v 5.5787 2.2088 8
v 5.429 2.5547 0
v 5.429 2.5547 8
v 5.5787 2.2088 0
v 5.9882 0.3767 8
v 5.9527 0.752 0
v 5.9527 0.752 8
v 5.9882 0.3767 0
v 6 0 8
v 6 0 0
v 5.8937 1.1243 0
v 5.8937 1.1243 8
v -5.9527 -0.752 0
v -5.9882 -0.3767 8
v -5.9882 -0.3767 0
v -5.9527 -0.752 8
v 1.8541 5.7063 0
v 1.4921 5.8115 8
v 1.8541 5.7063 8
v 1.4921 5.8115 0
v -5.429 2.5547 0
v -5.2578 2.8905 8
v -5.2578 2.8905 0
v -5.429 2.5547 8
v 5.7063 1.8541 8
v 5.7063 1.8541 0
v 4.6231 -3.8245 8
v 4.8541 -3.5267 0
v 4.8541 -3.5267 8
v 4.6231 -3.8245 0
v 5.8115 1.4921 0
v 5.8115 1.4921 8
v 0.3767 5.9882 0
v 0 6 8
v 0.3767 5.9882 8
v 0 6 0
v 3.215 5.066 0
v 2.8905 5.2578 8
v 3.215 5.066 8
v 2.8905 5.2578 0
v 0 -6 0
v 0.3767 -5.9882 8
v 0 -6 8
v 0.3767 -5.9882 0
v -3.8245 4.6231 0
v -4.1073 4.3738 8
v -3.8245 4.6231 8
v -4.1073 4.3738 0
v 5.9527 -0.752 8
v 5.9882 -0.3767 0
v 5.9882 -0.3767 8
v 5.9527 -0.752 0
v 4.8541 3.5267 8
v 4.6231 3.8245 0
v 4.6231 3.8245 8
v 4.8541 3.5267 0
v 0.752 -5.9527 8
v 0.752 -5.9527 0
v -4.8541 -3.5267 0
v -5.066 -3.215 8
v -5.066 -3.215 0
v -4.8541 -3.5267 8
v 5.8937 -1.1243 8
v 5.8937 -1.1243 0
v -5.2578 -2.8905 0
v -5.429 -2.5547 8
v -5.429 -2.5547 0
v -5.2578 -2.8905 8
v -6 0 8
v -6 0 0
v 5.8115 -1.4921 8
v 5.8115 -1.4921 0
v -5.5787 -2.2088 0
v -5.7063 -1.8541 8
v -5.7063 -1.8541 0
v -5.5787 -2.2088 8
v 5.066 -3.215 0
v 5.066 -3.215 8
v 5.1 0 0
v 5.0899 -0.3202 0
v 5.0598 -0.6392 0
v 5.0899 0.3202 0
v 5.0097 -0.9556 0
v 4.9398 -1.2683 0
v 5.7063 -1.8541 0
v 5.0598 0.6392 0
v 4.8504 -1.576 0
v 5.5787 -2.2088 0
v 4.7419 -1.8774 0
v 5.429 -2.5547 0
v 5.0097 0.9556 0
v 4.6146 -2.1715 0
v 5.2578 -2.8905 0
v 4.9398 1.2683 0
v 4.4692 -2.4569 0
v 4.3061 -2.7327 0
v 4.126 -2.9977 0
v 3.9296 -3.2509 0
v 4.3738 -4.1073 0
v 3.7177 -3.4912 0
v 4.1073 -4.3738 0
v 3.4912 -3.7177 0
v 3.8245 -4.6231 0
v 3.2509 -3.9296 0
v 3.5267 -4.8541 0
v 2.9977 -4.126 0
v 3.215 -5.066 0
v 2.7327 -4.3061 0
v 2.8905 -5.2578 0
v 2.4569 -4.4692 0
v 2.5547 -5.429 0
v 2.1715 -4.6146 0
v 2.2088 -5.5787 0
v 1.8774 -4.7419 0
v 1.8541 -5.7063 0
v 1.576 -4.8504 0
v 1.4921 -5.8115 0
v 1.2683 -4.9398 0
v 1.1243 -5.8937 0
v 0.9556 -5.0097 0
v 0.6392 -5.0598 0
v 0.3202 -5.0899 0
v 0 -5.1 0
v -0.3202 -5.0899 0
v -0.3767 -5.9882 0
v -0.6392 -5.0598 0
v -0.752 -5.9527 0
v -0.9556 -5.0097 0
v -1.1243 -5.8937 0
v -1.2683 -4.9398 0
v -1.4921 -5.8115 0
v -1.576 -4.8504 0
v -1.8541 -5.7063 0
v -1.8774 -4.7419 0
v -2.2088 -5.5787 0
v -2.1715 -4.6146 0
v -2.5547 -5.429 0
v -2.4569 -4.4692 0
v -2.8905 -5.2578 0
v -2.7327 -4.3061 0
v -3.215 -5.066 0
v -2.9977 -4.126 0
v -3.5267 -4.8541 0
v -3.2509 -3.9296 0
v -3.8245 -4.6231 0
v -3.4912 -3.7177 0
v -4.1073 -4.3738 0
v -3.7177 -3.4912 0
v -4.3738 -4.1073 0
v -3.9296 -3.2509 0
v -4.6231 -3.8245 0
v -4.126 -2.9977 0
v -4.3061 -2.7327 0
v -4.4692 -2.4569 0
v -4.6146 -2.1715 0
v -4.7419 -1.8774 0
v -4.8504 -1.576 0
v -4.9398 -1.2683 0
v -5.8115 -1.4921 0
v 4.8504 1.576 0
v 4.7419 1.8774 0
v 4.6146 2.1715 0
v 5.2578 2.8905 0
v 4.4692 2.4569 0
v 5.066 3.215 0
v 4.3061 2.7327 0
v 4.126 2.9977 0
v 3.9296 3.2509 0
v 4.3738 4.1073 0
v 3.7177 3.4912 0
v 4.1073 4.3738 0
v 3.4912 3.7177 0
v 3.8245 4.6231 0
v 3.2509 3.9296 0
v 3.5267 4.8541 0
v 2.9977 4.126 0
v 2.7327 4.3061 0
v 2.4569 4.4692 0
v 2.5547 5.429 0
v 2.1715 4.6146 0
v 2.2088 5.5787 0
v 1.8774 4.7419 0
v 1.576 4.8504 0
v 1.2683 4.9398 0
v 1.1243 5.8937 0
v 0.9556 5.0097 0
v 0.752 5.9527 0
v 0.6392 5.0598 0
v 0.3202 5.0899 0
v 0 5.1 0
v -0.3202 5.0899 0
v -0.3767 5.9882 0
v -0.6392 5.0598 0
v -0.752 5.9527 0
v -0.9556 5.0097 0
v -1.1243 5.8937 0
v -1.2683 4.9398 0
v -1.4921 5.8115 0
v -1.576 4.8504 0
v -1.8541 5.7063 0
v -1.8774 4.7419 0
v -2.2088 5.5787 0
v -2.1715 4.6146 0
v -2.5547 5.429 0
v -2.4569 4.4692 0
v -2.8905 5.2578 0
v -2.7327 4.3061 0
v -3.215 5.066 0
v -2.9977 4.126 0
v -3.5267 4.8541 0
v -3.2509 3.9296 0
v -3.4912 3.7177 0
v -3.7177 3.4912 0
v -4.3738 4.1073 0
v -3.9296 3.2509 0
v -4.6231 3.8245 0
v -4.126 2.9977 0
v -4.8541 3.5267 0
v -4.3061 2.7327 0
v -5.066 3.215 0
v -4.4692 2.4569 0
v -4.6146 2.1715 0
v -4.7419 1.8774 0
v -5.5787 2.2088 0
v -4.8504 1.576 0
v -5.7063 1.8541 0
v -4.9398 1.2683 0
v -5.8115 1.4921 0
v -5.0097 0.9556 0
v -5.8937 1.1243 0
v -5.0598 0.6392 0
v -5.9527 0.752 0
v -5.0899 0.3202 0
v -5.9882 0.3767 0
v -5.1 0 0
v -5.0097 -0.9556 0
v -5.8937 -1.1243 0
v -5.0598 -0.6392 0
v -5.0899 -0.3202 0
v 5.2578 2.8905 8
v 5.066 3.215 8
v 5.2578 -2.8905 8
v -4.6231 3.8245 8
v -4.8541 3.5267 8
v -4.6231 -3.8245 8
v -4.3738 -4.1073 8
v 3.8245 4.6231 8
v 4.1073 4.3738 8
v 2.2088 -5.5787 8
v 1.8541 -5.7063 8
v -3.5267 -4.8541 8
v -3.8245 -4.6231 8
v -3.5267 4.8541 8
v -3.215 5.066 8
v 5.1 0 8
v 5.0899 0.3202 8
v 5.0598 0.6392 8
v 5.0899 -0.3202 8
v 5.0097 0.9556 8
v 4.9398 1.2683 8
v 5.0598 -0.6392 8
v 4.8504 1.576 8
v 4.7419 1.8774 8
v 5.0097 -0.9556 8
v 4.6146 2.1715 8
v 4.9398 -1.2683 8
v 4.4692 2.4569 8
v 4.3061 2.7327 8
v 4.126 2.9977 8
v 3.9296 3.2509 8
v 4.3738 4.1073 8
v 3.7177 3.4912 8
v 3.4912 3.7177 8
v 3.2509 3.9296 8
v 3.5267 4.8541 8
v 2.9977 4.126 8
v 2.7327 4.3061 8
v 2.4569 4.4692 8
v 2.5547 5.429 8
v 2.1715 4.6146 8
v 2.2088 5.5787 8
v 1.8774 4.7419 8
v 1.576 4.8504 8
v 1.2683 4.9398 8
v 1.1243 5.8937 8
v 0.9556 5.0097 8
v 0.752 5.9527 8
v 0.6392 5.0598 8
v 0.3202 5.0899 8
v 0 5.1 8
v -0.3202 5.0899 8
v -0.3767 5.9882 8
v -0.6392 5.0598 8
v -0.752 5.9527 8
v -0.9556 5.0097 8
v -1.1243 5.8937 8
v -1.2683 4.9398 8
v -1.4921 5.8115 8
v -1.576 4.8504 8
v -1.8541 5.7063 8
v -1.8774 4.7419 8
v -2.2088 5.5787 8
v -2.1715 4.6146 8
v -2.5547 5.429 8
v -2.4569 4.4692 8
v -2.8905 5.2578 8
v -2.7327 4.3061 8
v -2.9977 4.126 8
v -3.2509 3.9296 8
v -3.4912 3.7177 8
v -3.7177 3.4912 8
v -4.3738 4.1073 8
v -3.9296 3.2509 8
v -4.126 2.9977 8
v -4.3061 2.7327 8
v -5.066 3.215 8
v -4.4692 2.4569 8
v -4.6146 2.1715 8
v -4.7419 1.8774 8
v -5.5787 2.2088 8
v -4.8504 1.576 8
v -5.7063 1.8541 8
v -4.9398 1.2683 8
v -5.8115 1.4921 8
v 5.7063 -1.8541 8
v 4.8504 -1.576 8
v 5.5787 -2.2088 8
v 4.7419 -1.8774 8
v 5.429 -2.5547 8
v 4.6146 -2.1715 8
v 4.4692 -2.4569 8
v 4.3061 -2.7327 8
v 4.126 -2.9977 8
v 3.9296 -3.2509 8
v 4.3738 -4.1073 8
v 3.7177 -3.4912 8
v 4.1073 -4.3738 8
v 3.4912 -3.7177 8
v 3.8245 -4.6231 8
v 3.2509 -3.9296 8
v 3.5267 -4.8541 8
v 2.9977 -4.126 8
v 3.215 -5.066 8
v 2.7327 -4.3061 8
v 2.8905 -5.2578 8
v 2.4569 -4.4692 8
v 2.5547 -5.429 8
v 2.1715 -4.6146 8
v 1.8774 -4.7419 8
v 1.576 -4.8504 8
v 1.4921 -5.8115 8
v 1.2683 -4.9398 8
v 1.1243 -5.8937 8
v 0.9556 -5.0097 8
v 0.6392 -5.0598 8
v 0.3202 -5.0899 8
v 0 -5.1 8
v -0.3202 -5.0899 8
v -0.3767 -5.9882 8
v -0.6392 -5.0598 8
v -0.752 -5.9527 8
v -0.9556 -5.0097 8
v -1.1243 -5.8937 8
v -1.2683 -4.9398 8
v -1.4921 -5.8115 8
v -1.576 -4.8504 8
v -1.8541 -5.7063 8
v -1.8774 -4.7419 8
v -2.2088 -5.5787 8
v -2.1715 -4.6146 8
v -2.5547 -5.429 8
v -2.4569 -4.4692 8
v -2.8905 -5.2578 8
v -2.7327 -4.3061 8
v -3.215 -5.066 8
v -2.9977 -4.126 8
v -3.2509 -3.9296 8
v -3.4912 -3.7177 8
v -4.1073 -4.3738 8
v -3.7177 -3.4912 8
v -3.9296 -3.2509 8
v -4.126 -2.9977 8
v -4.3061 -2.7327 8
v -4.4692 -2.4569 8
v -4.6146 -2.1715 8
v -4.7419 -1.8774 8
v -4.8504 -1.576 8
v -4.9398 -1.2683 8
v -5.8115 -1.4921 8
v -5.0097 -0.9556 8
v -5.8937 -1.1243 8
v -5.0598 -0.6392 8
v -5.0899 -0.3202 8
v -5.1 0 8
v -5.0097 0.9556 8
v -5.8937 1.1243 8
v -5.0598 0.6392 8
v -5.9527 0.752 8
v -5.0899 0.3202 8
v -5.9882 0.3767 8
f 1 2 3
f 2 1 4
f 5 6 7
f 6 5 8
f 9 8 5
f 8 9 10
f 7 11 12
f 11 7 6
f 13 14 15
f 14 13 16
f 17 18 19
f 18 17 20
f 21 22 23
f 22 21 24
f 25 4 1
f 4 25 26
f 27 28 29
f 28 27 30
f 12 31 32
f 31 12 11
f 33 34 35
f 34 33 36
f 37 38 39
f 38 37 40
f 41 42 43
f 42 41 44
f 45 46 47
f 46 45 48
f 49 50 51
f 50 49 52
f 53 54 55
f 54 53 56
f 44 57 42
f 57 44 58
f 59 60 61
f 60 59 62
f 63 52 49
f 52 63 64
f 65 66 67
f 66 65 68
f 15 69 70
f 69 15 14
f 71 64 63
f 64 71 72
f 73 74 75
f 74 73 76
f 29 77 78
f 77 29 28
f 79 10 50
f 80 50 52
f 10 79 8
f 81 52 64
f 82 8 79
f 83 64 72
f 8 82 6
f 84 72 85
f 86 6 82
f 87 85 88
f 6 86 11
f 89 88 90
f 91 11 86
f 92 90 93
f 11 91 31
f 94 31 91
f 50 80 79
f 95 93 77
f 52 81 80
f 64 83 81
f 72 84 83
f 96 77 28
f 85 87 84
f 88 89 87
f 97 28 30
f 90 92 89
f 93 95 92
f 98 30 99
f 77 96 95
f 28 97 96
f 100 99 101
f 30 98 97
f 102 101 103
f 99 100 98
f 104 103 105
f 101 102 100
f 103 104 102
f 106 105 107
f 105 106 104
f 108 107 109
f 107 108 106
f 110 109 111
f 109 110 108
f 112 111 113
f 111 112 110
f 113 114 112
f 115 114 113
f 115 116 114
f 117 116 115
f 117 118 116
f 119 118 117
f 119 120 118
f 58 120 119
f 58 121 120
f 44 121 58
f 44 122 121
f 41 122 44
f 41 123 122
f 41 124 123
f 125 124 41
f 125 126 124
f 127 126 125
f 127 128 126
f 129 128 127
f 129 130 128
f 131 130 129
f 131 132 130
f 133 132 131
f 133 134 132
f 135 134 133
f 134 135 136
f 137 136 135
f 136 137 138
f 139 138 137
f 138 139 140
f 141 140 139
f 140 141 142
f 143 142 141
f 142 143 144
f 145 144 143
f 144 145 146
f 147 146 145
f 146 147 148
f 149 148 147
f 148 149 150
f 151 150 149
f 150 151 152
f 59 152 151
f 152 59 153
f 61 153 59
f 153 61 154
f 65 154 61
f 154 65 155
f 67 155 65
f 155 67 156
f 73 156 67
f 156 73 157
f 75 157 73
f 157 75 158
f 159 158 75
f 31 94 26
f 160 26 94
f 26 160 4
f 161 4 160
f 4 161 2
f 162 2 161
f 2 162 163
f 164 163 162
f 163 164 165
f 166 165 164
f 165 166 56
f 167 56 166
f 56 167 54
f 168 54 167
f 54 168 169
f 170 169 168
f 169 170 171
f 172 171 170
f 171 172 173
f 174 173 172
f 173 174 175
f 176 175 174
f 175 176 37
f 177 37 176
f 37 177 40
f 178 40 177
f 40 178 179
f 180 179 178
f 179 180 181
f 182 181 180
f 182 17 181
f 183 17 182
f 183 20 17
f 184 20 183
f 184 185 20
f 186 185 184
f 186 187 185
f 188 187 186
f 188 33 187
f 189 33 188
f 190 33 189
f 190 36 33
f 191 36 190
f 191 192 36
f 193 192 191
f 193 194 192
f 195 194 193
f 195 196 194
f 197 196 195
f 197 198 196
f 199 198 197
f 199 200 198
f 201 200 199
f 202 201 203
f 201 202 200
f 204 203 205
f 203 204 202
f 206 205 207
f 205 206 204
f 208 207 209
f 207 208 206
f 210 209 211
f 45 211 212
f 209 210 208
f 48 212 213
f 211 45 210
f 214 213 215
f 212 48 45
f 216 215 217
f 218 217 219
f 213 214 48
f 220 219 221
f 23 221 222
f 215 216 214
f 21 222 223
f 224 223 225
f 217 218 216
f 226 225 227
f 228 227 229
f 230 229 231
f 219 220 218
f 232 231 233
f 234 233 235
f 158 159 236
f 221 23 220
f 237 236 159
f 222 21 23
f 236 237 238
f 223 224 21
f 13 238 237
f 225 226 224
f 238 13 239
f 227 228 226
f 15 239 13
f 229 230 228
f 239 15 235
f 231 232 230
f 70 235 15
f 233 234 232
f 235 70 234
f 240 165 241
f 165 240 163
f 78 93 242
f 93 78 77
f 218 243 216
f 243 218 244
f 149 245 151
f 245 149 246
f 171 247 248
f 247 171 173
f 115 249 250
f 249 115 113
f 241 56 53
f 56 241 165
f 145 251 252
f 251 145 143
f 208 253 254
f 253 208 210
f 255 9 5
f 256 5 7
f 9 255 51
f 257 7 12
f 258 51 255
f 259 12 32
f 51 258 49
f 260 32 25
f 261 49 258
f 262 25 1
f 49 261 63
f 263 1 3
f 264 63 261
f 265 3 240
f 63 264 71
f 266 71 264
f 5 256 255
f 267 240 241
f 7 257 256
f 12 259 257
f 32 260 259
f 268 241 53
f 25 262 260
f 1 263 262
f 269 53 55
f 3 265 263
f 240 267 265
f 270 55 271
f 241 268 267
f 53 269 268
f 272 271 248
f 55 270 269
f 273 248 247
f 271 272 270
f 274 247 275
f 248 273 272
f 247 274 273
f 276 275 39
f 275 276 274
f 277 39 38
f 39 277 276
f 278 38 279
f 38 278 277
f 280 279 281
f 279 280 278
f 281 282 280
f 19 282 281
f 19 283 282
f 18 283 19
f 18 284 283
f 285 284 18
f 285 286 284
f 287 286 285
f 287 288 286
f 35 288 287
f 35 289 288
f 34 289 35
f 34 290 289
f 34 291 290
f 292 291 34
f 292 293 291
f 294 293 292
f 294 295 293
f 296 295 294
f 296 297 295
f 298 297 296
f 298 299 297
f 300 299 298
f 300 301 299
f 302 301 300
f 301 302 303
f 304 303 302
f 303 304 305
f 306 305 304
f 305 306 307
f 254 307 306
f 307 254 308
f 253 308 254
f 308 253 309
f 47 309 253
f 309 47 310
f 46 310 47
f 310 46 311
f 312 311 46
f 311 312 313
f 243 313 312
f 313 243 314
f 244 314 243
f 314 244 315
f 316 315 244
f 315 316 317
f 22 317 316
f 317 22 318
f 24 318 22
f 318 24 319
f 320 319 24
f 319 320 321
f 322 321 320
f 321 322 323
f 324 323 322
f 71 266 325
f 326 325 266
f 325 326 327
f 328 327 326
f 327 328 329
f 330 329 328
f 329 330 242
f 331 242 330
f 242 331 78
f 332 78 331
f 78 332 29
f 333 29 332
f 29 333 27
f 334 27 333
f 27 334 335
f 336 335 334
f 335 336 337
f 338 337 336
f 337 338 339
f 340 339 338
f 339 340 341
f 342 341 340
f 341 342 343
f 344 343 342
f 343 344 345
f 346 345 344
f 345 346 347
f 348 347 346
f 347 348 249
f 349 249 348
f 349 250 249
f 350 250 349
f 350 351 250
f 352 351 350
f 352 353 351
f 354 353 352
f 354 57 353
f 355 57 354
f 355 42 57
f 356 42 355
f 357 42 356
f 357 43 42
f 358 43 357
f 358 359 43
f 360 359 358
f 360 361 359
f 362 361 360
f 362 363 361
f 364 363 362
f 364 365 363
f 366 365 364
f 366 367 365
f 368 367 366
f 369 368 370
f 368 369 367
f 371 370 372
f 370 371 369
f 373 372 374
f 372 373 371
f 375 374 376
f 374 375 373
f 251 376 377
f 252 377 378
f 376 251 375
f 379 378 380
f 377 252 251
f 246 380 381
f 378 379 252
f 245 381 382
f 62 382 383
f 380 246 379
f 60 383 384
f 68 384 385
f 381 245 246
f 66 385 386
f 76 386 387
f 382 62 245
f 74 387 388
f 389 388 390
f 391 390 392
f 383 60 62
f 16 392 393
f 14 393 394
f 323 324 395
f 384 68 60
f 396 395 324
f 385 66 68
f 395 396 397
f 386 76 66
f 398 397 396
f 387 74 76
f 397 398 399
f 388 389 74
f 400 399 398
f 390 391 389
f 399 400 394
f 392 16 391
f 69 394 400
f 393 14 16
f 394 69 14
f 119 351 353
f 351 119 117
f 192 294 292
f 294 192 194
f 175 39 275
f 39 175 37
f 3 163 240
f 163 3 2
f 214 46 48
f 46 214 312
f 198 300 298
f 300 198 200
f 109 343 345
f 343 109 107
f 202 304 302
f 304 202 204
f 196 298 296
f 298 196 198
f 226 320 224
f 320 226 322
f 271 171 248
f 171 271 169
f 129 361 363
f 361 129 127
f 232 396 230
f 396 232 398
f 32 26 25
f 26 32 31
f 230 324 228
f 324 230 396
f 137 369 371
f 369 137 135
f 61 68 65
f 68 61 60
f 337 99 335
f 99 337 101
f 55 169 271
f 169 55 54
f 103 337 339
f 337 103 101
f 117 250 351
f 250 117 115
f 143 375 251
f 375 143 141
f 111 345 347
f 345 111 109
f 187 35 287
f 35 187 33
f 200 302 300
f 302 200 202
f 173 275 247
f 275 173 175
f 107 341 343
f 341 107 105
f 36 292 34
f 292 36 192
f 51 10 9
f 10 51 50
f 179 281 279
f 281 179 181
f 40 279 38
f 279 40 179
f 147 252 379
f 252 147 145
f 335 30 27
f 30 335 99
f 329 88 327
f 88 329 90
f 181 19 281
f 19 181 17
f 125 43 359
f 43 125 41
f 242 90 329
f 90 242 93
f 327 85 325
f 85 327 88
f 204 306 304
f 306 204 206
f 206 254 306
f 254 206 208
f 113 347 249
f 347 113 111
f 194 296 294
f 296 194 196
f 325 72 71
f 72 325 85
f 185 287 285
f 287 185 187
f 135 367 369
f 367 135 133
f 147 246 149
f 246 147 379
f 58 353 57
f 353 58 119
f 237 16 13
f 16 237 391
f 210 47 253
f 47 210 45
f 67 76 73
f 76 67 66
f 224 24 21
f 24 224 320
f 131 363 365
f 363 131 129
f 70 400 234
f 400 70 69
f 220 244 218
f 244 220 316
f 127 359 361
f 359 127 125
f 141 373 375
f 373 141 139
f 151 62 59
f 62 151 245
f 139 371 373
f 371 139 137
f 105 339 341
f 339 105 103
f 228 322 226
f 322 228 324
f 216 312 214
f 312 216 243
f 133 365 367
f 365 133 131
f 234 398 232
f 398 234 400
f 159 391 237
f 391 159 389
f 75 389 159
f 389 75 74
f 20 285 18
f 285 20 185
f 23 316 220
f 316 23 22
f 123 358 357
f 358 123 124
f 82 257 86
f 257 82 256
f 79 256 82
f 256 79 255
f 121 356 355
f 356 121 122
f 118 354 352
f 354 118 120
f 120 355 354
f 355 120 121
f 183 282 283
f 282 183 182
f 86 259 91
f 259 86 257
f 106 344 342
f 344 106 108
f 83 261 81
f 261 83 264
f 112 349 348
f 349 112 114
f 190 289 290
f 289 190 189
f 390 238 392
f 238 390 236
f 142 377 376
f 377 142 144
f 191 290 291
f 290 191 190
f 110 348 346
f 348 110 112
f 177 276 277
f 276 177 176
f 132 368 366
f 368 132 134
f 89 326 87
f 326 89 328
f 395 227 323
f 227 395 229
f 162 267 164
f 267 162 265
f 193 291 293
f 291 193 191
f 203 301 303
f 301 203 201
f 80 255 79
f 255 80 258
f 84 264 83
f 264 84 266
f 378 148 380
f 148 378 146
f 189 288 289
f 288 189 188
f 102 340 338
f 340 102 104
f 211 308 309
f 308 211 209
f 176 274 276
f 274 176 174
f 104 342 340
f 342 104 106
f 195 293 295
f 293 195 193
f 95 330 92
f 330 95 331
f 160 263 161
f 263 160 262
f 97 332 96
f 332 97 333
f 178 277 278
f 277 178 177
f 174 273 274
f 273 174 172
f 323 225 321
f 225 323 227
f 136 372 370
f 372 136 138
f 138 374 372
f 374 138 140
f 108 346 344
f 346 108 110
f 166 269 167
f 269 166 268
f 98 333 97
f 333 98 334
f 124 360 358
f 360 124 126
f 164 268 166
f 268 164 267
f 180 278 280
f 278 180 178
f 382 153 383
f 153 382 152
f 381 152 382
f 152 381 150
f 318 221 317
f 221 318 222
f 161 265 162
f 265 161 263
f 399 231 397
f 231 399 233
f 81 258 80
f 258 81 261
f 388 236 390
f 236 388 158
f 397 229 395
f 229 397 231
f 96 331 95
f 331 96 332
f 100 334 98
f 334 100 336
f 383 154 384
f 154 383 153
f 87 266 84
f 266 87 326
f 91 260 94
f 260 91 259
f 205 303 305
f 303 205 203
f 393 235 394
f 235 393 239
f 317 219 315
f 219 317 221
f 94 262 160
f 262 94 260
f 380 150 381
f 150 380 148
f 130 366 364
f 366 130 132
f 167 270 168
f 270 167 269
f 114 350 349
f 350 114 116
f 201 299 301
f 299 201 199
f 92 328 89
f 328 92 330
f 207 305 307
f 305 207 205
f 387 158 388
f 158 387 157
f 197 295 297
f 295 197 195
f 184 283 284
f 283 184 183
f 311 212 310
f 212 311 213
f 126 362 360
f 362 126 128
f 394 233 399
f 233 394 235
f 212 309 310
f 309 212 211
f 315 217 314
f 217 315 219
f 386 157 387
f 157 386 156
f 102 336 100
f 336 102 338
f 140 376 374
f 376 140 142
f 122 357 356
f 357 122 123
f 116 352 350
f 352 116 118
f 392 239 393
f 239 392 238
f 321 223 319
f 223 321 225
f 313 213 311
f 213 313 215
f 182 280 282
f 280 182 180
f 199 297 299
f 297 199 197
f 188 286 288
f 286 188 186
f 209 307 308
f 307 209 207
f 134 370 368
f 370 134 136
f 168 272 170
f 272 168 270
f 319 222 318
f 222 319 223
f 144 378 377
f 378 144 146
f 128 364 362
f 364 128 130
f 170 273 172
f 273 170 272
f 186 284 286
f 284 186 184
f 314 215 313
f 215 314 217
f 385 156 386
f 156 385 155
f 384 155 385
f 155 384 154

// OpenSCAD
// TABLE WARS - Motor Sock (TPU 95A)
// Friction-fit holder for vibration motor

/* [Dimensions] */
outer_diameter = 12;      // mm
inner_diameter = 10.2;    // mm (tight fit on 10mm motor)
height = 8;               // mm
wall_thickness = 0.8;     // mm (calculated: (12-10.2)/2 = 0.9mm)

/* [Resolution] */
$fn = 100;

module motor_sock() {
    difference() {
        // Outer cylinder
        cylinder(h = height, d = outer_diameter);

        // Inner cavity (open top)
        translate([0, 0, -1])
            cylinder(h = height + 1, d = inner_diameter);
    }
}

motor_sock();
